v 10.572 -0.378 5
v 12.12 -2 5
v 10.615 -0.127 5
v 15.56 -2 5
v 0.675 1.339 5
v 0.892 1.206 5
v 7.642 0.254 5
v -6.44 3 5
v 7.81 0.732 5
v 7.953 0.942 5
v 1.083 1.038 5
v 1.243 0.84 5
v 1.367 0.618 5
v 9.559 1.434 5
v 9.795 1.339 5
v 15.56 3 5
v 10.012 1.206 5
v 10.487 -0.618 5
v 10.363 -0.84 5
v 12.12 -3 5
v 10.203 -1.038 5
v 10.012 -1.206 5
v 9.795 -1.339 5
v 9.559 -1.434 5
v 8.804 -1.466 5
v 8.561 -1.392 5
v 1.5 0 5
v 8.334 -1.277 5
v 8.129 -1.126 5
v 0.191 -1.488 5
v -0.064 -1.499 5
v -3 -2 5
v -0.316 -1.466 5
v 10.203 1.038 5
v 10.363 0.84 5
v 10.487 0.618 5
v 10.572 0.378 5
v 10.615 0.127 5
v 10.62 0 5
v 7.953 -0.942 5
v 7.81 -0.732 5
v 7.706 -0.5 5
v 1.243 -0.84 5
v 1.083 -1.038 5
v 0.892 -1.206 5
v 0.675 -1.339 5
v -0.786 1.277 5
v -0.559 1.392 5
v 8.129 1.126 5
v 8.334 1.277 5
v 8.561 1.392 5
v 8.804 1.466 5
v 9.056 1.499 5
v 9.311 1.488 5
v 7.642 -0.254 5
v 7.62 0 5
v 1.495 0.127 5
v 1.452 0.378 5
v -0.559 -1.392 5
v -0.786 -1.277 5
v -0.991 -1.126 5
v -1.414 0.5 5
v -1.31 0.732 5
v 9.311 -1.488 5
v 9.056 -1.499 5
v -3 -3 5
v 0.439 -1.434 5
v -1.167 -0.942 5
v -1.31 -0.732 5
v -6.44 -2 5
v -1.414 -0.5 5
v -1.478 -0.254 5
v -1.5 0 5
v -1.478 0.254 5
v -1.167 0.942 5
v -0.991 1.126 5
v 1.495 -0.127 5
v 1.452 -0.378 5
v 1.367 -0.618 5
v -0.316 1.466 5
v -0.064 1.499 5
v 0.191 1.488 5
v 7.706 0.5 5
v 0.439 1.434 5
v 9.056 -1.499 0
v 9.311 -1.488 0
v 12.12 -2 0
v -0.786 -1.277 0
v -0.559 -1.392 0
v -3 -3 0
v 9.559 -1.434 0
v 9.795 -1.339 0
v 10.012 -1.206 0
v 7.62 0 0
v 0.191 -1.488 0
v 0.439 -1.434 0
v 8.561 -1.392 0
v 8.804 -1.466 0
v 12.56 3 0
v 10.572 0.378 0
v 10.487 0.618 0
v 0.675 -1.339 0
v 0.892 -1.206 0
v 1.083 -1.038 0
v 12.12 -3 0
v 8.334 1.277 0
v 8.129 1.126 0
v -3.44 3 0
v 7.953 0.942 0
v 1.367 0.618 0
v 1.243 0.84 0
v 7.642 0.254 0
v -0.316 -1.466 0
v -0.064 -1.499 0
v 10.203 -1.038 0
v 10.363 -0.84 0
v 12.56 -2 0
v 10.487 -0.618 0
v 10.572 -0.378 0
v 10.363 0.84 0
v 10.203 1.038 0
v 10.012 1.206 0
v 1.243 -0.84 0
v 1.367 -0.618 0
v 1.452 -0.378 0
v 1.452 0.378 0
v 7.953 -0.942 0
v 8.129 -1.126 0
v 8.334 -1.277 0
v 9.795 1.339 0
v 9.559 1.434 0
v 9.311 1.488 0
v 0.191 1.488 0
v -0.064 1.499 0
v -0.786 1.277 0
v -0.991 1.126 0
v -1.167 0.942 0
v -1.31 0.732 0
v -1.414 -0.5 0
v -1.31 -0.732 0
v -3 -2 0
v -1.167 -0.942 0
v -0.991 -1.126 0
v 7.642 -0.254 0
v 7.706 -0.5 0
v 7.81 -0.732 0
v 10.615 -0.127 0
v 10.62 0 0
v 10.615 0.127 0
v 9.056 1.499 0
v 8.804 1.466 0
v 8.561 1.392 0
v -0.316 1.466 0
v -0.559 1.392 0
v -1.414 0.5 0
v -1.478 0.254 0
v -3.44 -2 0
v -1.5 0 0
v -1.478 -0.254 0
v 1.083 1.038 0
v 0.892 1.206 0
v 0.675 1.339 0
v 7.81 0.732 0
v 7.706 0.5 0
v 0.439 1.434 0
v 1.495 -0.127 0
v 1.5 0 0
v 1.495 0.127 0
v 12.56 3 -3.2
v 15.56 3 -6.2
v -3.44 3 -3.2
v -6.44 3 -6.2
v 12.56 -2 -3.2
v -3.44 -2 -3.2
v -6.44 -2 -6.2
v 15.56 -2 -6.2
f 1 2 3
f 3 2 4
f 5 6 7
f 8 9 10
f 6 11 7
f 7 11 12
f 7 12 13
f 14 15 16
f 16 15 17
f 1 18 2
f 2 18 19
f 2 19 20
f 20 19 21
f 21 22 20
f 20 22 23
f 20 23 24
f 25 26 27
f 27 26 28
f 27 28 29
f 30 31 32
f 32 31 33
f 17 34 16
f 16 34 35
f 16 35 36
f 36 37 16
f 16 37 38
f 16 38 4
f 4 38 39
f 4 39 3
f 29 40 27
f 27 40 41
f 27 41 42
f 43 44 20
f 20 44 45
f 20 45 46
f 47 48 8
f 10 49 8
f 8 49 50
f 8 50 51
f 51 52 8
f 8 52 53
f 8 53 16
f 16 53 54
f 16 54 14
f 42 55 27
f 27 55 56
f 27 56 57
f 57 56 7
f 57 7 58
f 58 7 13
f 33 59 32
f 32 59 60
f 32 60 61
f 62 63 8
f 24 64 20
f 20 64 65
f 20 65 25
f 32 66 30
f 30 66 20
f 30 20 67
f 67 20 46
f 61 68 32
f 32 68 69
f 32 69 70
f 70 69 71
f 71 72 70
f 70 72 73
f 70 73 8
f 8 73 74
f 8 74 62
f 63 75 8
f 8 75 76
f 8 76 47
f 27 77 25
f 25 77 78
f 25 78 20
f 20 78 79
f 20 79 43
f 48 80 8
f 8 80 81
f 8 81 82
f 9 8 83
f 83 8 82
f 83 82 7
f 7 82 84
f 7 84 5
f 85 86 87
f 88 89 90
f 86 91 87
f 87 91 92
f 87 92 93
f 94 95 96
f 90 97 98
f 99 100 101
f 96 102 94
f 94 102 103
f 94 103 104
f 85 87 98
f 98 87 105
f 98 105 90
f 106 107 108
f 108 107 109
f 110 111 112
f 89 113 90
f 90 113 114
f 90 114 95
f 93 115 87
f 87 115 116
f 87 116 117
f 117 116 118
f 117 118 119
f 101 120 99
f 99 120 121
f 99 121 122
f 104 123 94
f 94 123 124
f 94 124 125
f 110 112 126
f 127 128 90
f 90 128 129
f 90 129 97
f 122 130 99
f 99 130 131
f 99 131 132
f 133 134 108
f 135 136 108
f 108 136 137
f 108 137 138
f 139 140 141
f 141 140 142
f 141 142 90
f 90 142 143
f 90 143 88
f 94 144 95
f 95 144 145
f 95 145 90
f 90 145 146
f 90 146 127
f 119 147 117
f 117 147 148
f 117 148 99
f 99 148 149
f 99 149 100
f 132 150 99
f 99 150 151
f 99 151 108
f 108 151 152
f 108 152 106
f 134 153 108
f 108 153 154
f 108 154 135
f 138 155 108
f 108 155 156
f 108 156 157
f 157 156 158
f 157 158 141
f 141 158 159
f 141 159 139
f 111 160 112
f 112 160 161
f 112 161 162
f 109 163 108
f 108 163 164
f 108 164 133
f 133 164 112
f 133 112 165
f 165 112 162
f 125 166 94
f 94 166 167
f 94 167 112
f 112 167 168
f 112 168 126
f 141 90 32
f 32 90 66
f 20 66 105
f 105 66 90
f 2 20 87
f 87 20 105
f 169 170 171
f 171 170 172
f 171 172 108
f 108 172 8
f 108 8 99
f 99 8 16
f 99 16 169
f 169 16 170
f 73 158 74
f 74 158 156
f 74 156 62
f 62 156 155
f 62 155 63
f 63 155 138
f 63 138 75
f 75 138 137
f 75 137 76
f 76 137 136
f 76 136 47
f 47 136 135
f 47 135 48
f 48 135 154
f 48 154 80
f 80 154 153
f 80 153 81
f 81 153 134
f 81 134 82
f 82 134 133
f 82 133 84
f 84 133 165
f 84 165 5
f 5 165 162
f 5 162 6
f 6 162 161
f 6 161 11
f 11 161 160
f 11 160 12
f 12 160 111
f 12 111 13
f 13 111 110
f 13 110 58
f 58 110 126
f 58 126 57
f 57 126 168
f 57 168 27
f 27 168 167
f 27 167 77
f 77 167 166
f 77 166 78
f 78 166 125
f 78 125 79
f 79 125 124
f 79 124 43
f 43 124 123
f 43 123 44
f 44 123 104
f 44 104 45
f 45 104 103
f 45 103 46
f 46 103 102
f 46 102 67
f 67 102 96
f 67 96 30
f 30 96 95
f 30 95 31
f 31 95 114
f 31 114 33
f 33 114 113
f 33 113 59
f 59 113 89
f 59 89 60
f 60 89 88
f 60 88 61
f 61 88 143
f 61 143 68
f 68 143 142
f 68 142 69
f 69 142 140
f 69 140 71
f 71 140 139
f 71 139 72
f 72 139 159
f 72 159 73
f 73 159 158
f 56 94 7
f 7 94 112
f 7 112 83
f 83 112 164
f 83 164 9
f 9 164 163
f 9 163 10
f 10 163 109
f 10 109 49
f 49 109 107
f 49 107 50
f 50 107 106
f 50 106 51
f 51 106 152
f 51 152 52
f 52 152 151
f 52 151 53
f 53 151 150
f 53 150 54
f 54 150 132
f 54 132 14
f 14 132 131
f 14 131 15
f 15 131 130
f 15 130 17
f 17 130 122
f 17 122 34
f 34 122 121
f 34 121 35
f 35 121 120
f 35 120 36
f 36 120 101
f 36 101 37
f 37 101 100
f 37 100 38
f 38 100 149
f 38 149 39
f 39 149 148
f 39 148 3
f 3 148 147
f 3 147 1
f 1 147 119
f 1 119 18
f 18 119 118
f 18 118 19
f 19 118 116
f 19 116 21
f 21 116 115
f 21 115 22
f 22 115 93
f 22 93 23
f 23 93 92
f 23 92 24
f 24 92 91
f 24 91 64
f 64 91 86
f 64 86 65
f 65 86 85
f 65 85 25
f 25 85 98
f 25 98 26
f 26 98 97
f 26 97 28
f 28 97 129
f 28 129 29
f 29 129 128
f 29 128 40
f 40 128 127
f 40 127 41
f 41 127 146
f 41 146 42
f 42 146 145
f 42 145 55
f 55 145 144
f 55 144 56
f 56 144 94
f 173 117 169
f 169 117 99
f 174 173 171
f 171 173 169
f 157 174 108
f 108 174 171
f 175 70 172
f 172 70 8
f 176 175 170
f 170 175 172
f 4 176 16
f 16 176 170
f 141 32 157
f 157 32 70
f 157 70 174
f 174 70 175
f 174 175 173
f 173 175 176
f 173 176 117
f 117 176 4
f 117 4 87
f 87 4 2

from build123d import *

# Parameters (mm, degrees)
SKETCH_1_W      = 15.12
SKETCH_1_H      = 6
SKETCH_1_R      = 1.5
EXTRUDE_1_DEPTH = 5
EXTRUDE_2_DEPTH = 5


with BuildPart() as part:
    # Эскиз1 → Бобышка-Вытянуть1 (new body)
    with BuildSketch(Plane.XY):
        with Locations((4.56, 0)):
            Rectangle(SKETCH_1_W, SKETCH_1_H)
        Circle(SKETCH_1_R, mode=Mode.SUBTRACT)
        with Locations((9.12, 0)):
            Circle(SKETCH_1_R, mode=Mode.SUBTRACT)
    extrude(amount=EXTRUDE_1_DEPTH)

    # Эскиз2 → Бобышка-Вытянуть2 (add)
    with BuildSketch(Plane(origin=(0, 3, 0), x_dir=(1, 0, 0), z_dir=(0, 1, 0))):
        Polygon((12.12, -5), (15.56, -5), (15.56, 6.2), (-6.44, 6.2), (-6.44, -5), (-3, -5), (-3, 0), (-3.44, 0), (-3.44, 3.2), (12.56, 3.2), (12.56, 0), (12.12, 0), align=None)
    extrude(amount=-EXTRUDE_2_DEPTH)


solid = part.part
